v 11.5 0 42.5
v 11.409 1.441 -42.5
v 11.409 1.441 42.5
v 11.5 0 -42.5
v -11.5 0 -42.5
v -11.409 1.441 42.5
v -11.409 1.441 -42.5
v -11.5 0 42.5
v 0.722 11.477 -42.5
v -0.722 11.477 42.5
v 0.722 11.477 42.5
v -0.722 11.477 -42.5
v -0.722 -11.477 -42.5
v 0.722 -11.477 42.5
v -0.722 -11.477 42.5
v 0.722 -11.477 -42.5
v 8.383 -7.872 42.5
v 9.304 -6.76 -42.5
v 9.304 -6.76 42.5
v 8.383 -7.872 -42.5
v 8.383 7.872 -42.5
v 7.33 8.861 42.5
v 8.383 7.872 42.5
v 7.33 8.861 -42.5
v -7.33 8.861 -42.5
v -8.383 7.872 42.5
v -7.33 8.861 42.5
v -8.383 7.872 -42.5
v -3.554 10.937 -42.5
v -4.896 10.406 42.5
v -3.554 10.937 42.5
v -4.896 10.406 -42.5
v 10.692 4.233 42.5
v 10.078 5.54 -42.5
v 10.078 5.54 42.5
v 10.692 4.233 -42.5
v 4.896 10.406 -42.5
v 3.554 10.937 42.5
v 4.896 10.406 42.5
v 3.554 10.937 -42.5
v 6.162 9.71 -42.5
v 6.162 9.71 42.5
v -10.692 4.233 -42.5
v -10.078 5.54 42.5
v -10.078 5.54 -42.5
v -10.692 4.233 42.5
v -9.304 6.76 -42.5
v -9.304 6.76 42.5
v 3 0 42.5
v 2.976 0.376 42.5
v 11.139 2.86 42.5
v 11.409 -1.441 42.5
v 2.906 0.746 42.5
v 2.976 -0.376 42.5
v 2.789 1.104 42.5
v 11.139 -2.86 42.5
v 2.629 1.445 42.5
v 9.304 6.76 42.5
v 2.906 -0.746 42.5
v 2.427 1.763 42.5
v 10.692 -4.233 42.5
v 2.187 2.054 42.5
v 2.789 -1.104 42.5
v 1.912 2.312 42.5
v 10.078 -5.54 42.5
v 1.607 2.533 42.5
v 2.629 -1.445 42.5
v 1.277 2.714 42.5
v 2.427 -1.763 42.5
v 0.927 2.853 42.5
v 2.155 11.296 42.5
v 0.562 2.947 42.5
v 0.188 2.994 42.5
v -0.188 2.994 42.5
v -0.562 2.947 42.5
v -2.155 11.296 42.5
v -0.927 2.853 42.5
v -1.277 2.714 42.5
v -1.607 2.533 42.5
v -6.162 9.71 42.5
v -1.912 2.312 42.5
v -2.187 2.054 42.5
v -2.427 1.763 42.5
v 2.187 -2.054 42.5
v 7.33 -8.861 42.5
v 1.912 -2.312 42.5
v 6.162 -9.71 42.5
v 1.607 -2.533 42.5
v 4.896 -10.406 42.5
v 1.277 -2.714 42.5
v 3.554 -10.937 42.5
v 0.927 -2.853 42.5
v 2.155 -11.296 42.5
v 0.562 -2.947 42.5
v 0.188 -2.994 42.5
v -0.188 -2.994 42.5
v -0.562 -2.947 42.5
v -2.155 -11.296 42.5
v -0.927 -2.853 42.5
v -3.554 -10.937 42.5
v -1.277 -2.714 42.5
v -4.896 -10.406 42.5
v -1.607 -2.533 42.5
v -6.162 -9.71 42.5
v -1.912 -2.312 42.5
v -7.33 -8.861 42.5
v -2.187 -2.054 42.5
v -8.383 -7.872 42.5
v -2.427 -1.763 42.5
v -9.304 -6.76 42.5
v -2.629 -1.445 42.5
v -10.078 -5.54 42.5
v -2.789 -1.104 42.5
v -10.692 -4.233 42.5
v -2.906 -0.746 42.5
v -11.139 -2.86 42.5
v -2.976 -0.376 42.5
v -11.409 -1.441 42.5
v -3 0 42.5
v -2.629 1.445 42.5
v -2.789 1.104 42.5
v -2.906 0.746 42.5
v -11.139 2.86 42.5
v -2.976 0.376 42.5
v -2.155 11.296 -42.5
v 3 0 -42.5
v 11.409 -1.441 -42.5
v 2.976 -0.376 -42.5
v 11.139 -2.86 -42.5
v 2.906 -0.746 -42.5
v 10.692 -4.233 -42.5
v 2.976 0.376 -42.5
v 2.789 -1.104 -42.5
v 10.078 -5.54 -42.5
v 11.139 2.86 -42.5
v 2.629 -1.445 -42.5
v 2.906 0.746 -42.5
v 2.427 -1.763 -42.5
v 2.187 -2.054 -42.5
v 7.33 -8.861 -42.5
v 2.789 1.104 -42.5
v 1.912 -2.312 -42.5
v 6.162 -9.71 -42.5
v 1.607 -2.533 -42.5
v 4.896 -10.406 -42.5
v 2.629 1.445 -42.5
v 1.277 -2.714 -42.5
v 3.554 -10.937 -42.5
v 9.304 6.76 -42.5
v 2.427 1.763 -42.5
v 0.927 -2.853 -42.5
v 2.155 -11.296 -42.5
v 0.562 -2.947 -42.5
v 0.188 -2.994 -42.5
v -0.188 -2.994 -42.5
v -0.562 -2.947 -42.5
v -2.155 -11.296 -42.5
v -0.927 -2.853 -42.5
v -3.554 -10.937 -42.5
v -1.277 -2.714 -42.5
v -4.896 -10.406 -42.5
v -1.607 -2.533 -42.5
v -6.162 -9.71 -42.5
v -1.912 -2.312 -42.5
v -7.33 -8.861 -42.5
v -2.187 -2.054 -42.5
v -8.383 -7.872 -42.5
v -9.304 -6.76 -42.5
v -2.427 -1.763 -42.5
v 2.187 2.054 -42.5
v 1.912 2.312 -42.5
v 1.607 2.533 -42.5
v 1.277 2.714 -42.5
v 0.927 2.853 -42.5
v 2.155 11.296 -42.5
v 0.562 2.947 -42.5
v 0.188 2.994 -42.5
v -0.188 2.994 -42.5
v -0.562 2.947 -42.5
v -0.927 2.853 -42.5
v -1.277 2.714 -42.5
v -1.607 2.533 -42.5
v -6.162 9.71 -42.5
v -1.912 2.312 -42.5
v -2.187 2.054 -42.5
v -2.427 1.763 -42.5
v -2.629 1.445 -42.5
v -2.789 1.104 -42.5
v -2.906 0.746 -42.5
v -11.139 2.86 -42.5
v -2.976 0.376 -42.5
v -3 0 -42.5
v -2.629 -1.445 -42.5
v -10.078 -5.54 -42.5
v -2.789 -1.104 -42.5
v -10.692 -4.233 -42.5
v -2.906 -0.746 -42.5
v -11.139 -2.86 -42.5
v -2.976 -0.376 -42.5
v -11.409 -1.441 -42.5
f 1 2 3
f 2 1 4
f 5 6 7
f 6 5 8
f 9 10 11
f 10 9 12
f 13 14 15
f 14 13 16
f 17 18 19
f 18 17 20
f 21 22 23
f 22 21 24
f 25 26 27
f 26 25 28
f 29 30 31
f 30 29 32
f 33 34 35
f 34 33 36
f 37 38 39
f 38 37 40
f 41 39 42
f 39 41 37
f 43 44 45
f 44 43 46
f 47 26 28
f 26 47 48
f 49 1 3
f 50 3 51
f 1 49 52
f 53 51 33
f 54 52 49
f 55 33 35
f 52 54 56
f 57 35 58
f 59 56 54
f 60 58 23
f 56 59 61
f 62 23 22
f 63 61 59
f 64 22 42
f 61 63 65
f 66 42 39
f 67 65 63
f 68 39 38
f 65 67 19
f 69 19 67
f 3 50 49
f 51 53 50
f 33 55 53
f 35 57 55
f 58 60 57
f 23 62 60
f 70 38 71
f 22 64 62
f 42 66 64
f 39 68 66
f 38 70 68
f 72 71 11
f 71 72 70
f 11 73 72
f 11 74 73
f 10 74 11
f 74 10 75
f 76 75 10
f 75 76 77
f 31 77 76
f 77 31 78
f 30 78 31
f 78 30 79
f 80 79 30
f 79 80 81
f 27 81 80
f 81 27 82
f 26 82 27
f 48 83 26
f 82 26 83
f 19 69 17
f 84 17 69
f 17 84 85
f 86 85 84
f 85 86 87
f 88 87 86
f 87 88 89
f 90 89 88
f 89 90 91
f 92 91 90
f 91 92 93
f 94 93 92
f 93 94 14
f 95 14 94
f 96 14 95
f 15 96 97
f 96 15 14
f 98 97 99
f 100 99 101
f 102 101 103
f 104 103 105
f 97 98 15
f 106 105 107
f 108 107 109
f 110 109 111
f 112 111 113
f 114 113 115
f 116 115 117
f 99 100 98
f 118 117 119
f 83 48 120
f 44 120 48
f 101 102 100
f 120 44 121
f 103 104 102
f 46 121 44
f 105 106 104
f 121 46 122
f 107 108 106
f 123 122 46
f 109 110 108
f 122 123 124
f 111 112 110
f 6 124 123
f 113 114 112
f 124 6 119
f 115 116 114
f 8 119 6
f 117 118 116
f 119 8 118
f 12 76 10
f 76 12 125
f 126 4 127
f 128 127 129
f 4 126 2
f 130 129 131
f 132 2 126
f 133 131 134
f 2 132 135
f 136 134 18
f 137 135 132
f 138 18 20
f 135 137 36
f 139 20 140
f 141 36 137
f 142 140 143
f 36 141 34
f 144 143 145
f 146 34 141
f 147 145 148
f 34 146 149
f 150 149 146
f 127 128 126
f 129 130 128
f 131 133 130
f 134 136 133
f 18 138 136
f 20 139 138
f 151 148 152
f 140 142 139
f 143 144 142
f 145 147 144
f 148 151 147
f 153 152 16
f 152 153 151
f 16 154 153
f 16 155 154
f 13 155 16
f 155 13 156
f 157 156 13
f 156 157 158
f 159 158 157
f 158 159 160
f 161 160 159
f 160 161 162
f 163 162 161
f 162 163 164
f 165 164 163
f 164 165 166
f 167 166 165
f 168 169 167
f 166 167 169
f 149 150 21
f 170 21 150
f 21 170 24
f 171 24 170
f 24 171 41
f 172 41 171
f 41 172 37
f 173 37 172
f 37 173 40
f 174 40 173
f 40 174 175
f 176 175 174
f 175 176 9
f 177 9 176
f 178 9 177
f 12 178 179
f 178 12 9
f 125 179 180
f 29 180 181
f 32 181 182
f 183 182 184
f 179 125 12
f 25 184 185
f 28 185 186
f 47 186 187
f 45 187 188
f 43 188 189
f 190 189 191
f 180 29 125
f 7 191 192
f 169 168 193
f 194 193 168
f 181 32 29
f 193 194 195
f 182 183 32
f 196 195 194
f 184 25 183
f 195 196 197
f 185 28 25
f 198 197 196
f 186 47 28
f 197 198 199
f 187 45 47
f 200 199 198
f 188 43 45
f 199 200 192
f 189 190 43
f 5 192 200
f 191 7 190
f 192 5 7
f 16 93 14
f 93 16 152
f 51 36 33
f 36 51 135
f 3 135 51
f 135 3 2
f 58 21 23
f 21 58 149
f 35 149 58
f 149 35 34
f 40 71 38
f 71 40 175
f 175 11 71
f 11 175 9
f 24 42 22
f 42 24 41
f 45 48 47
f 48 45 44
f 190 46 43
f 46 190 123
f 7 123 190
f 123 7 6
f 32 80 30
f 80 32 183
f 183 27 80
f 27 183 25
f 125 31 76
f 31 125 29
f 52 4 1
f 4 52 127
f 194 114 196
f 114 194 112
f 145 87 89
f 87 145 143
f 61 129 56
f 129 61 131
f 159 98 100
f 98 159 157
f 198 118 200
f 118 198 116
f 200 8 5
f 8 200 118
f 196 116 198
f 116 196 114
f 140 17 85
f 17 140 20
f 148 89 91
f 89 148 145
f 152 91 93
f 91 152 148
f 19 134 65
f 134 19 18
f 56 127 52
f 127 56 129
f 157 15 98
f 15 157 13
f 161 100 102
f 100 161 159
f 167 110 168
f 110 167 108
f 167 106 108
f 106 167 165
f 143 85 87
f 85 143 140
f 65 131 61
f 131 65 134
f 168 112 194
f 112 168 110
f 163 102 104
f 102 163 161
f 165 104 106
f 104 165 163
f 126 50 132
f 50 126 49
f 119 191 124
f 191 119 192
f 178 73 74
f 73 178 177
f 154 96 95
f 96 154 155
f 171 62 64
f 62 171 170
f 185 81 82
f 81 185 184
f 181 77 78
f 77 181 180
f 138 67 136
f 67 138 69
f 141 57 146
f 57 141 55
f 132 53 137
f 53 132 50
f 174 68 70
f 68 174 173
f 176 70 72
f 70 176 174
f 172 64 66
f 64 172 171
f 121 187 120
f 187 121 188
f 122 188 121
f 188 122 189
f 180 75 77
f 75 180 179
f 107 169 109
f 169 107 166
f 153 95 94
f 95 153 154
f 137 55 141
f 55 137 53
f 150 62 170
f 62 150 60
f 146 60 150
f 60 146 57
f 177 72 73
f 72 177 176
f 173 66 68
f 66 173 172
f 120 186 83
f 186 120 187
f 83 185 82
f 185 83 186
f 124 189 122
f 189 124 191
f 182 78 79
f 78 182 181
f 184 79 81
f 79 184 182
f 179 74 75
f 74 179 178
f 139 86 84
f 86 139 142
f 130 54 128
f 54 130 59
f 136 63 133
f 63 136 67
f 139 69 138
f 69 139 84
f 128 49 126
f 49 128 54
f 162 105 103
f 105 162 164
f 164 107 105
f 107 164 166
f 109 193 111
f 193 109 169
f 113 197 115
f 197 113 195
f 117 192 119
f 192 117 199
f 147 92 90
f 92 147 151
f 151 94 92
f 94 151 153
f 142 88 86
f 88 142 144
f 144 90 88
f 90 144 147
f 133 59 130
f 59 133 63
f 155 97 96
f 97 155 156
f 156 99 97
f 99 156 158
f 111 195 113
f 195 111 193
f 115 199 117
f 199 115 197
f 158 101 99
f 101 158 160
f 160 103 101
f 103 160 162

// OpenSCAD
$fn = 50;


difference() {
	union() {
		translate(v = [0, 0, -42.5000000000]) {
			cylinder(h = 85, r = 11.5000000000);
		}
	}
	union() {
		translate(v = [0, 0, -100.0000000000]) {
			cylinder(h = 200, r = 3);
		}
	}
}
